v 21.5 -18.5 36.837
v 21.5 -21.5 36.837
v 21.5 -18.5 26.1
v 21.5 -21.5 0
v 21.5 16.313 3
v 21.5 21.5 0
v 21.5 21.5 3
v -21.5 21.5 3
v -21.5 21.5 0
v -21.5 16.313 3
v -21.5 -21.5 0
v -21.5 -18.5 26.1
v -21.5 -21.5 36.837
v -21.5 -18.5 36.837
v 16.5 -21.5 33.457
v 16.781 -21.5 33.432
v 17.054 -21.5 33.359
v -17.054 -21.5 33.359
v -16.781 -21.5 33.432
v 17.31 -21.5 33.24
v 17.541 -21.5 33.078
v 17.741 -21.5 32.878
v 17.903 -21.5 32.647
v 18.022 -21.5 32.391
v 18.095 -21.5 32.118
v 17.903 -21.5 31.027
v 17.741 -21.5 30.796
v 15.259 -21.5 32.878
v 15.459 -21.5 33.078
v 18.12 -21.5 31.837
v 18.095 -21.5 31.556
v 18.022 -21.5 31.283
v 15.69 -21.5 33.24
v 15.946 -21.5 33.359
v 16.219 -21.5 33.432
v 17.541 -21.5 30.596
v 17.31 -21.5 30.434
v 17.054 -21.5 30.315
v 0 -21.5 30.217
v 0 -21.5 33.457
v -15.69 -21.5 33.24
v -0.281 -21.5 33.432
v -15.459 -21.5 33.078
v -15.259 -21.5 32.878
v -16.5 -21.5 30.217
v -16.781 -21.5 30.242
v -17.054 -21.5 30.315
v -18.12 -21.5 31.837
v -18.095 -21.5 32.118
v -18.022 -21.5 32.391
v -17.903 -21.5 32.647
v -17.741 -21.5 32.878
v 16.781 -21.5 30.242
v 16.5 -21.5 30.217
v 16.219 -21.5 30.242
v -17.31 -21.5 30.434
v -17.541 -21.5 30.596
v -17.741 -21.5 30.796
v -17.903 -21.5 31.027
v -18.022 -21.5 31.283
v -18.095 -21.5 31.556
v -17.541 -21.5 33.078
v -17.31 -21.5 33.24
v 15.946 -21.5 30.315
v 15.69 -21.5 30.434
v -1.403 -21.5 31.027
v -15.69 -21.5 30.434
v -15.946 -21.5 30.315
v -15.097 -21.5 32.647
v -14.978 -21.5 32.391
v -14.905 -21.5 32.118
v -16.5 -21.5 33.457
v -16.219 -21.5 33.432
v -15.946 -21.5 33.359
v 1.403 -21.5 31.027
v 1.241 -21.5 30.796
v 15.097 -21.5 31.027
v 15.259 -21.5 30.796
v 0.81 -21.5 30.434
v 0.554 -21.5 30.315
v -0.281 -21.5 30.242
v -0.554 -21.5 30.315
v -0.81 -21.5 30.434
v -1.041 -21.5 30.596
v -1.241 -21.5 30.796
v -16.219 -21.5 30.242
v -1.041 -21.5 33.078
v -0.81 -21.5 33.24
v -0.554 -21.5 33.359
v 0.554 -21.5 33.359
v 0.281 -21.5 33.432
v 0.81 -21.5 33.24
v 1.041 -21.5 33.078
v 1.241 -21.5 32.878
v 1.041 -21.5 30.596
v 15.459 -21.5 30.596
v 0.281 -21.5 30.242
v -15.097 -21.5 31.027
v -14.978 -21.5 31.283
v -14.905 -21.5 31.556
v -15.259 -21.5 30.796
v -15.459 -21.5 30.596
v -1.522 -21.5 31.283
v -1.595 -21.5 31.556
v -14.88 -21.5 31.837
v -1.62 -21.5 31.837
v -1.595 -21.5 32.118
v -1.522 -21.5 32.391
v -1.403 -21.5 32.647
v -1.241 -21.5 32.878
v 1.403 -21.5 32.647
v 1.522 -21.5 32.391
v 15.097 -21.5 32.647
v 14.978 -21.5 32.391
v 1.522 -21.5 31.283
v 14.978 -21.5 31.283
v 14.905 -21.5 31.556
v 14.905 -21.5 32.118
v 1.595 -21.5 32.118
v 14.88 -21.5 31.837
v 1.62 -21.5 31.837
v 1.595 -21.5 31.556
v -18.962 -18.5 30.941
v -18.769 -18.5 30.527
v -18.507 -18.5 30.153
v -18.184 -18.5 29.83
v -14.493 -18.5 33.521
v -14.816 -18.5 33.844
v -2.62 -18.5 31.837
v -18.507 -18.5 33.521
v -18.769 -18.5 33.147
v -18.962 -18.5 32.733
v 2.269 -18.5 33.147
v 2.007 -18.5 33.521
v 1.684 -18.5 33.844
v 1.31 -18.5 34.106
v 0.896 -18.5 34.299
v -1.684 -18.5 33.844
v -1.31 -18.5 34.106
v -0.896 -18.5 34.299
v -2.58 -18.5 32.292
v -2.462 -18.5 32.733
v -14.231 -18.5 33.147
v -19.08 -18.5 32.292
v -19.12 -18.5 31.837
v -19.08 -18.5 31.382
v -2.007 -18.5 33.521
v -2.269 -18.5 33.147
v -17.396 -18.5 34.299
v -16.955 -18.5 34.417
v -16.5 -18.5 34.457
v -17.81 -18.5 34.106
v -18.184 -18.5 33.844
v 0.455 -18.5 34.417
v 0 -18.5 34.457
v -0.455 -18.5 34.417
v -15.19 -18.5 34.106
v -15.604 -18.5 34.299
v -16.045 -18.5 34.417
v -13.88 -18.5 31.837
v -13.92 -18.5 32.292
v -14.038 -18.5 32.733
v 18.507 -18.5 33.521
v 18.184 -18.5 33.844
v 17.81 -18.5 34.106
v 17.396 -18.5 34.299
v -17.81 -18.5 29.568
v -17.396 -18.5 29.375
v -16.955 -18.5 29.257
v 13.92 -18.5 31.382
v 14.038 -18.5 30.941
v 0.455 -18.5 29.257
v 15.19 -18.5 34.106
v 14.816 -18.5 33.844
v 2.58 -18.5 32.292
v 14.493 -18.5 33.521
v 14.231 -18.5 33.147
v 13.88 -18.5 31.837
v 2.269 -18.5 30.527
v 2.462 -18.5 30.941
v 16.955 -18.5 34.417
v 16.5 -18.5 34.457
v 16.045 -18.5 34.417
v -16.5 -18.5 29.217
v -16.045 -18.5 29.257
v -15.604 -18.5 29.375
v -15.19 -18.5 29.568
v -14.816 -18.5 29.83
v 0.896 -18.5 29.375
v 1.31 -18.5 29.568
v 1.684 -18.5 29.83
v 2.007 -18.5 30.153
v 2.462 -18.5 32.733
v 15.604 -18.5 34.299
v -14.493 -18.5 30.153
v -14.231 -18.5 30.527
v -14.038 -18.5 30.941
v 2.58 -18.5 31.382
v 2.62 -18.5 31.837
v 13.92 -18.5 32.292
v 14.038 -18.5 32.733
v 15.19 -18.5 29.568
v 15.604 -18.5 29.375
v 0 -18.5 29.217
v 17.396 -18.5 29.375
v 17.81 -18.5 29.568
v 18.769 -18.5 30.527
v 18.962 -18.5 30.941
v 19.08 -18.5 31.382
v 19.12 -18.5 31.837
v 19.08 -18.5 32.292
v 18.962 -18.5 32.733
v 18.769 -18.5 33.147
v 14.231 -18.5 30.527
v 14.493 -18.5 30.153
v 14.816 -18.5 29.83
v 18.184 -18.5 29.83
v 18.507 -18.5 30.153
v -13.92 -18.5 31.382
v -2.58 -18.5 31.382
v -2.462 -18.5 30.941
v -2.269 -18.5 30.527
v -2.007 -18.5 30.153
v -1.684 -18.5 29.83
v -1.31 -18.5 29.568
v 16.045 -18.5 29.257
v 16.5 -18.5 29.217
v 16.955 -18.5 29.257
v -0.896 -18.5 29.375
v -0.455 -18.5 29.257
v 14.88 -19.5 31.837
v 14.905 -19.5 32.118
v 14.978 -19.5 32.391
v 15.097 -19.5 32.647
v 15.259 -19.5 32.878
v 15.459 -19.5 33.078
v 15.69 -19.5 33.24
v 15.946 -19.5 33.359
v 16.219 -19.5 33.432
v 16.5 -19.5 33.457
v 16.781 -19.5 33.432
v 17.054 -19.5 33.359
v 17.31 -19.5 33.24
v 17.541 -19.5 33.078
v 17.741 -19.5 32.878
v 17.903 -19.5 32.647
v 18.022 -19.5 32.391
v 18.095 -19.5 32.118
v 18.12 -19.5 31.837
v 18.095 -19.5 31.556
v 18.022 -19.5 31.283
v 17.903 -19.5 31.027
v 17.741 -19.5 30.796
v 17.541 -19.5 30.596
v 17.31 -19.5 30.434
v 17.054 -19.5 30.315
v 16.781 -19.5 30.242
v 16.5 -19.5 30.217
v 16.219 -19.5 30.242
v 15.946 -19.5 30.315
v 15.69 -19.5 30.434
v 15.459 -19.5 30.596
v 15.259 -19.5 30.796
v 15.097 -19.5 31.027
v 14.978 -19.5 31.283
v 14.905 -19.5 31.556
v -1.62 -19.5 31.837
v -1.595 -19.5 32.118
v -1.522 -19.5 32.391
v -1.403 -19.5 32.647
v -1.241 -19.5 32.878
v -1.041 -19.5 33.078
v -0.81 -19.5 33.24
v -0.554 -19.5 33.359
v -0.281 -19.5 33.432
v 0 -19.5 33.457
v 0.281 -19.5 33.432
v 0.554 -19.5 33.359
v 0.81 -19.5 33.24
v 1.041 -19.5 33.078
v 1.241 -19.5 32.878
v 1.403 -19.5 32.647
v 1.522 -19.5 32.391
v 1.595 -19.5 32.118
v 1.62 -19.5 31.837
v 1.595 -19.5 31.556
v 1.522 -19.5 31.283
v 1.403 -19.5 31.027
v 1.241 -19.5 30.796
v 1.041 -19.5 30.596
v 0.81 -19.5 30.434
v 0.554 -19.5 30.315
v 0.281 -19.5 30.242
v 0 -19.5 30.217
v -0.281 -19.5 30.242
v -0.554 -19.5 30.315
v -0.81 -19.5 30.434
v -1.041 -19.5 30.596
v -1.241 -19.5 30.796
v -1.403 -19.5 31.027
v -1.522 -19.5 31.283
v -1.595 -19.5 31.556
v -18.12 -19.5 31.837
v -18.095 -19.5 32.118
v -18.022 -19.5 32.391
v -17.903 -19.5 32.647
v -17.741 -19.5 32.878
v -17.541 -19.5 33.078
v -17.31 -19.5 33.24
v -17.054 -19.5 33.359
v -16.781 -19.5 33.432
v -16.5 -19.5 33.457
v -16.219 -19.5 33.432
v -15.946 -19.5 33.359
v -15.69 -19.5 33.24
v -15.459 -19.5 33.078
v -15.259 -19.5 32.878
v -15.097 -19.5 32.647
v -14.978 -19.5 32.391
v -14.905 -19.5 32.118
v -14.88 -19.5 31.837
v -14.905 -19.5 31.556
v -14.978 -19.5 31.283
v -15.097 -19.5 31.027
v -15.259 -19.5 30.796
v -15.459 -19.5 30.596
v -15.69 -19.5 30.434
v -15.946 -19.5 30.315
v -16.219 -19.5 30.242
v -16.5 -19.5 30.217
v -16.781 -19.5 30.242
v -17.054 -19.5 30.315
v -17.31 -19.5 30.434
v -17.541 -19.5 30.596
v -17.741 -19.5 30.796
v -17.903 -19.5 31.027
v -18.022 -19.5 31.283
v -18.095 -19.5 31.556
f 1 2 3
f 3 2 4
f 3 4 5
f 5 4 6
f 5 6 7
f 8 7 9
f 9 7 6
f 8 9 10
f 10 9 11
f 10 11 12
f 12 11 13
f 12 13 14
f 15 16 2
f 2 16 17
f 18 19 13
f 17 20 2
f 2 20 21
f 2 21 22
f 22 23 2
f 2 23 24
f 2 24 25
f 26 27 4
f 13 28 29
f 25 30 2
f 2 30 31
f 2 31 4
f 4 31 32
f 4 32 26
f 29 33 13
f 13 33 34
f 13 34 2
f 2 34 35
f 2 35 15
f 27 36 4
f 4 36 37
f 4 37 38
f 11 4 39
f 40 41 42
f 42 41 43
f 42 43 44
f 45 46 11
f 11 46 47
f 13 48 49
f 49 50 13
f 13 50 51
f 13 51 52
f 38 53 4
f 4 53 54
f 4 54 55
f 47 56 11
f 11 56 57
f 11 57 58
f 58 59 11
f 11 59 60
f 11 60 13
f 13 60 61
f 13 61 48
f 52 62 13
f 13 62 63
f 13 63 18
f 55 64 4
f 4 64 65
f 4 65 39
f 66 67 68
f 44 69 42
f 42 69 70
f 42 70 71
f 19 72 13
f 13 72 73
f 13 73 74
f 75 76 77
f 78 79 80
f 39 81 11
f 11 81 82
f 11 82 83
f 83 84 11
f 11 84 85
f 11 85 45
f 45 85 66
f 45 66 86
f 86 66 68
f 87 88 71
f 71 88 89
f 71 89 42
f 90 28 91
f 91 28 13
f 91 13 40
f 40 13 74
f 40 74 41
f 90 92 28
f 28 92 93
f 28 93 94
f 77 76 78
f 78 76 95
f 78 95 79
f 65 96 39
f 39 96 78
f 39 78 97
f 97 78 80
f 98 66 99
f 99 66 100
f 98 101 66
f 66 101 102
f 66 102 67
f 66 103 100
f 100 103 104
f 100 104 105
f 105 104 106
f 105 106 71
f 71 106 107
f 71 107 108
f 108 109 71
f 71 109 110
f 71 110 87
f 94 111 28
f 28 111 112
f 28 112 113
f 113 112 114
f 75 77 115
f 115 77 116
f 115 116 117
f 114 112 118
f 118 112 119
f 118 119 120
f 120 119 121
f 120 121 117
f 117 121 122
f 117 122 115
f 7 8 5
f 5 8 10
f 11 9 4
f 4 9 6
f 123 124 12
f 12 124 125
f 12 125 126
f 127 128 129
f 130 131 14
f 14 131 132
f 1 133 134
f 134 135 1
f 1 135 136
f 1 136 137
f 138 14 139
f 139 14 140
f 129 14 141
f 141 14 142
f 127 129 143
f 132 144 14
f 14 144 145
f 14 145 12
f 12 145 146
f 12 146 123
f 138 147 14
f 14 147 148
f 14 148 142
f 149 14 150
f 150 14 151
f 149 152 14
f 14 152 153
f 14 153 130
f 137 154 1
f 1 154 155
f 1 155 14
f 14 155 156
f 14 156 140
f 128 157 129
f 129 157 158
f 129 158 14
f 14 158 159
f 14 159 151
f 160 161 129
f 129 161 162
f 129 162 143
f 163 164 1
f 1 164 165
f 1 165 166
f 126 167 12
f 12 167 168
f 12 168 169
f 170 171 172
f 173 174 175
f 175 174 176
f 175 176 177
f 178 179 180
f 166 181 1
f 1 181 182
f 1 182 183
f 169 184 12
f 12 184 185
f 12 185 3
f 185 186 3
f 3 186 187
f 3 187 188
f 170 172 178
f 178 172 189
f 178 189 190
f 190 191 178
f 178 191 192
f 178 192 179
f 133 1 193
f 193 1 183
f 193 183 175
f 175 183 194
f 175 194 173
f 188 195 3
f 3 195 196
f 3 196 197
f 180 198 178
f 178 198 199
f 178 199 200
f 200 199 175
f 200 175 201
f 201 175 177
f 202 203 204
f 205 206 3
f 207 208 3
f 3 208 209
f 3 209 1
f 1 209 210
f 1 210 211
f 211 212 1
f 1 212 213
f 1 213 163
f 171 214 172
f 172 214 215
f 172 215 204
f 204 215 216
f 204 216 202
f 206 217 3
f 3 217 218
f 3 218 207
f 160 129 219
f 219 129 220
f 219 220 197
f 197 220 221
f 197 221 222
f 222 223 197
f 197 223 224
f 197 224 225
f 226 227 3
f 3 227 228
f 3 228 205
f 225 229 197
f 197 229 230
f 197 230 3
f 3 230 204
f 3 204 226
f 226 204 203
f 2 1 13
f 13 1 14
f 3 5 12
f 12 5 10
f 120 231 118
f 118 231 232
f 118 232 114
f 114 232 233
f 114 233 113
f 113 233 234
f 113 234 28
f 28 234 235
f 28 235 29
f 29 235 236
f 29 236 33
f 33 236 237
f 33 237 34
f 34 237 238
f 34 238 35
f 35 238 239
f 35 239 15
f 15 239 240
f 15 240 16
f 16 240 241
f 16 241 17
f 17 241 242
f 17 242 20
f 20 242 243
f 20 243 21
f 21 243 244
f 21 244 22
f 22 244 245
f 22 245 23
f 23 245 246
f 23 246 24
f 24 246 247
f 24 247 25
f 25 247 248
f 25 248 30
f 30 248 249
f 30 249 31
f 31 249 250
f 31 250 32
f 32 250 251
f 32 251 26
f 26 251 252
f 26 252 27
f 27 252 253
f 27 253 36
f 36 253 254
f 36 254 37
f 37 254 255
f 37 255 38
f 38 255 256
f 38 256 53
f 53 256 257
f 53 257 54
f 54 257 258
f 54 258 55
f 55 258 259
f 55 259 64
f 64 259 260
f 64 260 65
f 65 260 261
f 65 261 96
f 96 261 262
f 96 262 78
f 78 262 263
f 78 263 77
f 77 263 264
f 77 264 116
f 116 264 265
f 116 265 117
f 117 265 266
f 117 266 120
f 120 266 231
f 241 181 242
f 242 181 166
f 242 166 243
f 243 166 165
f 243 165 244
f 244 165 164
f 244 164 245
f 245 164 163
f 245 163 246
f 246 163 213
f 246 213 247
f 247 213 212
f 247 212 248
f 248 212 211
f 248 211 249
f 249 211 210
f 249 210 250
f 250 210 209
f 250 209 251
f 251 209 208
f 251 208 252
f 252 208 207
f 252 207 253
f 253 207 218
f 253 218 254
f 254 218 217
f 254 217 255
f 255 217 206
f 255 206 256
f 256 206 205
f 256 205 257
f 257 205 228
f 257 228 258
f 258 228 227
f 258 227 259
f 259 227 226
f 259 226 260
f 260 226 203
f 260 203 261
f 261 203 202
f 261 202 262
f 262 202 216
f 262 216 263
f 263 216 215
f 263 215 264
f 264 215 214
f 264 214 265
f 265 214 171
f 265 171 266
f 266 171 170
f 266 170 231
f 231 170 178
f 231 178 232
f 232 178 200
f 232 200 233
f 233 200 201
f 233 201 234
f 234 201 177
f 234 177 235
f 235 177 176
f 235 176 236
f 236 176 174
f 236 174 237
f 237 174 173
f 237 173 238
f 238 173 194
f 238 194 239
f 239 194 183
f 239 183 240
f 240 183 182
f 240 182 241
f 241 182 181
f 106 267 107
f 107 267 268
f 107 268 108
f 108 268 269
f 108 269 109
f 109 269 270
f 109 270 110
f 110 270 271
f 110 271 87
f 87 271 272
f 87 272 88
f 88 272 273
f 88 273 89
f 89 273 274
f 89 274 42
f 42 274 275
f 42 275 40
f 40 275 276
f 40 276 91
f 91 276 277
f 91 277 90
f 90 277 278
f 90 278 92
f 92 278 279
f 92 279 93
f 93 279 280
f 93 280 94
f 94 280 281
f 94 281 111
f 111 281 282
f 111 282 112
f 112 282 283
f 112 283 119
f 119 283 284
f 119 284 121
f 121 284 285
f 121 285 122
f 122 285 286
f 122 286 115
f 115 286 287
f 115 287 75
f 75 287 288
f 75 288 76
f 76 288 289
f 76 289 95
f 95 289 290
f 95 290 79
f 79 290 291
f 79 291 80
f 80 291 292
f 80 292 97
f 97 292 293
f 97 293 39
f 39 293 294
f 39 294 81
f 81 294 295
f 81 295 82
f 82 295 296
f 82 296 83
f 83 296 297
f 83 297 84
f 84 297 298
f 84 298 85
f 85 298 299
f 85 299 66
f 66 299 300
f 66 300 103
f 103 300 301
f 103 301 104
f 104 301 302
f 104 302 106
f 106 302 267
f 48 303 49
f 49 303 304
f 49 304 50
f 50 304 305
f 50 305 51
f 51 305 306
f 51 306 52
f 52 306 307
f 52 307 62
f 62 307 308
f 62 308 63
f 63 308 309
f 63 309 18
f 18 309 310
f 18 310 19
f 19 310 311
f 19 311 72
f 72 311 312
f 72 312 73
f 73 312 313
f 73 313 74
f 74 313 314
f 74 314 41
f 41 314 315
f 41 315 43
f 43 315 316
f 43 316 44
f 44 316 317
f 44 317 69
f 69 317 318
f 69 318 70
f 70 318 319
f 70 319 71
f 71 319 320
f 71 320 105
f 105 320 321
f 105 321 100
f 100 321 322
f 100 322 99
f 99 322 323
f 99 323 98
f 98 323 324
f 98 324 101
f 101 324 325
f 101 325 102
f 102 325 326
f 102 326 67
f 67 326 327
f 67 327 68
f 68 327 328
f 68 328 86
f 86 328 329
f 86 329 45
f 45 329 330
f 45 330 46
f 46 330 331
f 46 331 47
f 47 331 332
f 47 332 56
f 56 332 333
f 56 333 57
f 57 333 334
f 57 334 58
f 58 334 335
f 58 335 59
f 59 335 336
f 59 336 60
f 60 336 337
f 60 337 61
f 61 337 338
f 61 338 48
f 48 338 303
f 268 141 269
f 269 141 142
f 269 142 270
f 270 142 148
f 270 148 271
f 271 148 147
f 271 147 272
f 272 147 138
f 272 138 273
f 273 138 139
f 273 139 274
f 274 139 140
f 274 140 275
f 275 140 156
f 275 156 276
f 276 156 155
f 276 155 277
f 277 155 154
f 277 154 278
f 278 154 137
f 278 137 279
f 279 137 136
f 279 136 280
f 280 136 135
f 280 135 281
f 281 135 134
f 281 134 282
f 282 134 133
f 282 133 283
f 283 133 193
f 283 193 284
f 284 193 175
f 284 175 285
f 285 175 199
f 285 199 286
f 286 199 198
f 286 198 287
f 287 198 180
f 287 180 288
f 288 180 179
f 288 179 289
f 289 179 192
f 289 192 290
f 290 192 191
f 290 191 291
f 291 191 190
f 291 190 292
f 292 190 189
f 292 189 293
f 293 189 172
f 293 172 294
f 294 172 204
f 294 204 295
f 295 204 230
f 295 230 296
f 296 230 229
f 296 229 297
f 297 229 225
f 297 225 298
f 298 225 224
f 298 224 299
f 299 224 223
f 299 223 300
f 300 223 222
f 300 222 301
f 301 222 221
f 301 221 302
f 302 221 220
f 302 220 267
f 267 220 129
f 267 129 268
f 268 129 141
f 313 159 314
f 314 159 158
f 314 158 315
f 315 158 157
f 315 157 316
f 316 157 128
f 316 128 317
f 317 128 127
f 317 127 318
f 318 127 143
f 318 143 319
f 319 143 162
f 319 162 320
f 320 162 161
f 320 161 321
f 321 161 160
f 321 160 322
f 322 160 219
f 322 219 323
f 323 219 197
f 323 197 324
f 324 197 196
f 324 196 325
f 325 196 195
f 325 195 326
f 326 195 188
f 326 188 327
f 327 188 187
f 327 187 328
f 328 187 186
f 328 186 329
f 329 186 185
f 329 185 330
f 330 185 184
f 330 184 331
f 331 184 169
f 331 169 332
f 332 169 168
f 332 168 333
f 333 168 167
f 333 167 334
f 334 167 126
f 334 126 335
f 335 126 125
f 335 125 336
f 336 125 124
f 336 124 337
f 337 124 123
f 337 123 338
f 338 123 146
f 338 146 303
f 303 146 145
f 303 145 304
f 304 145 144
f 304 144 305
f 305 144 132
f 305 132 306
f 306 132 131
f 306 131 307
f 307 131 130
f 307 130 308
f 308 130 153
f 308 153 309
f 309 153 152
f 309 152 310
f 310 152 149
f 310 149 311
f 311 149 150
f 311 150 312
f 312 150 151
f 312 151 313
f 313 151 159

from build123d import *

# Parameters (mm, degrees)
SCHIZZO1_W                   = 43
SCHIZZO1_H                   = 43
ESTRUSIONE_ESTRUSIONE1_DEPTH = 3
ESTRUSIONE_ESTRUSIONE2_DEPTH = 43
SCHIZZO3_R                   = 1.62
TAGLIO_ESTRUSIONE1_DEPTH     = 43
SMUSSO1_SIZE                 = 1
SCHIZZO3_3_R                 = 1.62
TAGLIO_ESTRUSIONE2_DEPTH     = 43
SCHIZZO3_4_R                 = 1.62
TAGLIO_ESTRUSIONE3_DEPTH     = 43
SMUSSO2_SIZE                 = 1
SMUSSO3_SIZE                 = 1


with BuildPart() as part:
    # Schizzo1 → Estrusione-Estrusione1 (new body)
    with BuildSketch(Plane.XY):
        Rectangle(SCHIZZO1_W, SCHIZZO1_H)
    extrude(amount=ESTRUSIONE_ESTRUSIONE1_DEPTH)

    # Schizzo2 → Estrusione-Estrusione2 (add)
    with BuildSketch(Plane.ZY.offset(21.5)):
        Polygon((26.100411225, -18.5), (3, 16.313408291), (3, -21.5), (36.837031378, -21.5), (36.837031378, -18.5), align=None)
    extrude(amount=-ESTRUSIONE_ESTRUSIONE2_DEPTH)

    # Schizzo3 → Taglio-Estrusione1 (cut)
    with BuildSketch(Plane(origin=(0, -18.5, 0), x_dir=(1, 0, 0), z_dir=(0, 1, 0))):
        with Locations((16.5, -31.837031378)):
            Circle(SCHIZZO3_R)
    extrude(amount=-TAGLIO_ESTRUSIONE1_DEPTH, mode=Mode.SUBTRACT)

    # Smusso1
    smusso1_edges = [part.edges().sort_by_distance(p)[0] for p in [
        (14.88, -18.5, 31.837031378),
    ]]
    chamfer(smusso1_edges, length=SMUSSO1_SIZE)

    # Schizzo3<3> → Taglio-Estrusione2 (cut)
    with BuildSketch(Plane(origin=(0, -18.5, 0), x_dir=(1, 0, 0), z_dir=(0, 1, 0))):
        with Locations((0, -31.837031378)):
            Circle(SCHIZZO3_3_R)
    extrude(amount=-TAGLIO_ESTRUSIONE2_DEPTH, mode=Mode.SUBTRACT)

    # Schizzo3<4> → Taglio-Estrusione3 (cut)
    with BuildSketch(Plane(origin=(0, -18.5, 0), x_dir=(1, 0, 0), z_dir=(0, 1, 0))):
        with Locations((-16.5, -31.837031378)):
            Circle(SCHIZZO3_4_R)
    extrude(amount=-TAGLIO_ESTRUSIONE3_DEPTH, mode=Mode.SUBTRACT)

    # Smusso2
    smusso2_edges = [part.edges().sort_by_distance(p)[0] for p in [
        (-1.62, -18.5, 31.837031378),
    ]]
    chamfer(smusso2_edges, length=SMUSSO2_SIZE)

    # Smusso3
    smusso3_edges = [part.edges().sort_by_distance(p)[0] for p in [
        (-18.12, -18.5, 31.837031378),
    ]]
    chamfer(smusso3_edges, length=SMUSSO3_SIZE)


solid = part.part
